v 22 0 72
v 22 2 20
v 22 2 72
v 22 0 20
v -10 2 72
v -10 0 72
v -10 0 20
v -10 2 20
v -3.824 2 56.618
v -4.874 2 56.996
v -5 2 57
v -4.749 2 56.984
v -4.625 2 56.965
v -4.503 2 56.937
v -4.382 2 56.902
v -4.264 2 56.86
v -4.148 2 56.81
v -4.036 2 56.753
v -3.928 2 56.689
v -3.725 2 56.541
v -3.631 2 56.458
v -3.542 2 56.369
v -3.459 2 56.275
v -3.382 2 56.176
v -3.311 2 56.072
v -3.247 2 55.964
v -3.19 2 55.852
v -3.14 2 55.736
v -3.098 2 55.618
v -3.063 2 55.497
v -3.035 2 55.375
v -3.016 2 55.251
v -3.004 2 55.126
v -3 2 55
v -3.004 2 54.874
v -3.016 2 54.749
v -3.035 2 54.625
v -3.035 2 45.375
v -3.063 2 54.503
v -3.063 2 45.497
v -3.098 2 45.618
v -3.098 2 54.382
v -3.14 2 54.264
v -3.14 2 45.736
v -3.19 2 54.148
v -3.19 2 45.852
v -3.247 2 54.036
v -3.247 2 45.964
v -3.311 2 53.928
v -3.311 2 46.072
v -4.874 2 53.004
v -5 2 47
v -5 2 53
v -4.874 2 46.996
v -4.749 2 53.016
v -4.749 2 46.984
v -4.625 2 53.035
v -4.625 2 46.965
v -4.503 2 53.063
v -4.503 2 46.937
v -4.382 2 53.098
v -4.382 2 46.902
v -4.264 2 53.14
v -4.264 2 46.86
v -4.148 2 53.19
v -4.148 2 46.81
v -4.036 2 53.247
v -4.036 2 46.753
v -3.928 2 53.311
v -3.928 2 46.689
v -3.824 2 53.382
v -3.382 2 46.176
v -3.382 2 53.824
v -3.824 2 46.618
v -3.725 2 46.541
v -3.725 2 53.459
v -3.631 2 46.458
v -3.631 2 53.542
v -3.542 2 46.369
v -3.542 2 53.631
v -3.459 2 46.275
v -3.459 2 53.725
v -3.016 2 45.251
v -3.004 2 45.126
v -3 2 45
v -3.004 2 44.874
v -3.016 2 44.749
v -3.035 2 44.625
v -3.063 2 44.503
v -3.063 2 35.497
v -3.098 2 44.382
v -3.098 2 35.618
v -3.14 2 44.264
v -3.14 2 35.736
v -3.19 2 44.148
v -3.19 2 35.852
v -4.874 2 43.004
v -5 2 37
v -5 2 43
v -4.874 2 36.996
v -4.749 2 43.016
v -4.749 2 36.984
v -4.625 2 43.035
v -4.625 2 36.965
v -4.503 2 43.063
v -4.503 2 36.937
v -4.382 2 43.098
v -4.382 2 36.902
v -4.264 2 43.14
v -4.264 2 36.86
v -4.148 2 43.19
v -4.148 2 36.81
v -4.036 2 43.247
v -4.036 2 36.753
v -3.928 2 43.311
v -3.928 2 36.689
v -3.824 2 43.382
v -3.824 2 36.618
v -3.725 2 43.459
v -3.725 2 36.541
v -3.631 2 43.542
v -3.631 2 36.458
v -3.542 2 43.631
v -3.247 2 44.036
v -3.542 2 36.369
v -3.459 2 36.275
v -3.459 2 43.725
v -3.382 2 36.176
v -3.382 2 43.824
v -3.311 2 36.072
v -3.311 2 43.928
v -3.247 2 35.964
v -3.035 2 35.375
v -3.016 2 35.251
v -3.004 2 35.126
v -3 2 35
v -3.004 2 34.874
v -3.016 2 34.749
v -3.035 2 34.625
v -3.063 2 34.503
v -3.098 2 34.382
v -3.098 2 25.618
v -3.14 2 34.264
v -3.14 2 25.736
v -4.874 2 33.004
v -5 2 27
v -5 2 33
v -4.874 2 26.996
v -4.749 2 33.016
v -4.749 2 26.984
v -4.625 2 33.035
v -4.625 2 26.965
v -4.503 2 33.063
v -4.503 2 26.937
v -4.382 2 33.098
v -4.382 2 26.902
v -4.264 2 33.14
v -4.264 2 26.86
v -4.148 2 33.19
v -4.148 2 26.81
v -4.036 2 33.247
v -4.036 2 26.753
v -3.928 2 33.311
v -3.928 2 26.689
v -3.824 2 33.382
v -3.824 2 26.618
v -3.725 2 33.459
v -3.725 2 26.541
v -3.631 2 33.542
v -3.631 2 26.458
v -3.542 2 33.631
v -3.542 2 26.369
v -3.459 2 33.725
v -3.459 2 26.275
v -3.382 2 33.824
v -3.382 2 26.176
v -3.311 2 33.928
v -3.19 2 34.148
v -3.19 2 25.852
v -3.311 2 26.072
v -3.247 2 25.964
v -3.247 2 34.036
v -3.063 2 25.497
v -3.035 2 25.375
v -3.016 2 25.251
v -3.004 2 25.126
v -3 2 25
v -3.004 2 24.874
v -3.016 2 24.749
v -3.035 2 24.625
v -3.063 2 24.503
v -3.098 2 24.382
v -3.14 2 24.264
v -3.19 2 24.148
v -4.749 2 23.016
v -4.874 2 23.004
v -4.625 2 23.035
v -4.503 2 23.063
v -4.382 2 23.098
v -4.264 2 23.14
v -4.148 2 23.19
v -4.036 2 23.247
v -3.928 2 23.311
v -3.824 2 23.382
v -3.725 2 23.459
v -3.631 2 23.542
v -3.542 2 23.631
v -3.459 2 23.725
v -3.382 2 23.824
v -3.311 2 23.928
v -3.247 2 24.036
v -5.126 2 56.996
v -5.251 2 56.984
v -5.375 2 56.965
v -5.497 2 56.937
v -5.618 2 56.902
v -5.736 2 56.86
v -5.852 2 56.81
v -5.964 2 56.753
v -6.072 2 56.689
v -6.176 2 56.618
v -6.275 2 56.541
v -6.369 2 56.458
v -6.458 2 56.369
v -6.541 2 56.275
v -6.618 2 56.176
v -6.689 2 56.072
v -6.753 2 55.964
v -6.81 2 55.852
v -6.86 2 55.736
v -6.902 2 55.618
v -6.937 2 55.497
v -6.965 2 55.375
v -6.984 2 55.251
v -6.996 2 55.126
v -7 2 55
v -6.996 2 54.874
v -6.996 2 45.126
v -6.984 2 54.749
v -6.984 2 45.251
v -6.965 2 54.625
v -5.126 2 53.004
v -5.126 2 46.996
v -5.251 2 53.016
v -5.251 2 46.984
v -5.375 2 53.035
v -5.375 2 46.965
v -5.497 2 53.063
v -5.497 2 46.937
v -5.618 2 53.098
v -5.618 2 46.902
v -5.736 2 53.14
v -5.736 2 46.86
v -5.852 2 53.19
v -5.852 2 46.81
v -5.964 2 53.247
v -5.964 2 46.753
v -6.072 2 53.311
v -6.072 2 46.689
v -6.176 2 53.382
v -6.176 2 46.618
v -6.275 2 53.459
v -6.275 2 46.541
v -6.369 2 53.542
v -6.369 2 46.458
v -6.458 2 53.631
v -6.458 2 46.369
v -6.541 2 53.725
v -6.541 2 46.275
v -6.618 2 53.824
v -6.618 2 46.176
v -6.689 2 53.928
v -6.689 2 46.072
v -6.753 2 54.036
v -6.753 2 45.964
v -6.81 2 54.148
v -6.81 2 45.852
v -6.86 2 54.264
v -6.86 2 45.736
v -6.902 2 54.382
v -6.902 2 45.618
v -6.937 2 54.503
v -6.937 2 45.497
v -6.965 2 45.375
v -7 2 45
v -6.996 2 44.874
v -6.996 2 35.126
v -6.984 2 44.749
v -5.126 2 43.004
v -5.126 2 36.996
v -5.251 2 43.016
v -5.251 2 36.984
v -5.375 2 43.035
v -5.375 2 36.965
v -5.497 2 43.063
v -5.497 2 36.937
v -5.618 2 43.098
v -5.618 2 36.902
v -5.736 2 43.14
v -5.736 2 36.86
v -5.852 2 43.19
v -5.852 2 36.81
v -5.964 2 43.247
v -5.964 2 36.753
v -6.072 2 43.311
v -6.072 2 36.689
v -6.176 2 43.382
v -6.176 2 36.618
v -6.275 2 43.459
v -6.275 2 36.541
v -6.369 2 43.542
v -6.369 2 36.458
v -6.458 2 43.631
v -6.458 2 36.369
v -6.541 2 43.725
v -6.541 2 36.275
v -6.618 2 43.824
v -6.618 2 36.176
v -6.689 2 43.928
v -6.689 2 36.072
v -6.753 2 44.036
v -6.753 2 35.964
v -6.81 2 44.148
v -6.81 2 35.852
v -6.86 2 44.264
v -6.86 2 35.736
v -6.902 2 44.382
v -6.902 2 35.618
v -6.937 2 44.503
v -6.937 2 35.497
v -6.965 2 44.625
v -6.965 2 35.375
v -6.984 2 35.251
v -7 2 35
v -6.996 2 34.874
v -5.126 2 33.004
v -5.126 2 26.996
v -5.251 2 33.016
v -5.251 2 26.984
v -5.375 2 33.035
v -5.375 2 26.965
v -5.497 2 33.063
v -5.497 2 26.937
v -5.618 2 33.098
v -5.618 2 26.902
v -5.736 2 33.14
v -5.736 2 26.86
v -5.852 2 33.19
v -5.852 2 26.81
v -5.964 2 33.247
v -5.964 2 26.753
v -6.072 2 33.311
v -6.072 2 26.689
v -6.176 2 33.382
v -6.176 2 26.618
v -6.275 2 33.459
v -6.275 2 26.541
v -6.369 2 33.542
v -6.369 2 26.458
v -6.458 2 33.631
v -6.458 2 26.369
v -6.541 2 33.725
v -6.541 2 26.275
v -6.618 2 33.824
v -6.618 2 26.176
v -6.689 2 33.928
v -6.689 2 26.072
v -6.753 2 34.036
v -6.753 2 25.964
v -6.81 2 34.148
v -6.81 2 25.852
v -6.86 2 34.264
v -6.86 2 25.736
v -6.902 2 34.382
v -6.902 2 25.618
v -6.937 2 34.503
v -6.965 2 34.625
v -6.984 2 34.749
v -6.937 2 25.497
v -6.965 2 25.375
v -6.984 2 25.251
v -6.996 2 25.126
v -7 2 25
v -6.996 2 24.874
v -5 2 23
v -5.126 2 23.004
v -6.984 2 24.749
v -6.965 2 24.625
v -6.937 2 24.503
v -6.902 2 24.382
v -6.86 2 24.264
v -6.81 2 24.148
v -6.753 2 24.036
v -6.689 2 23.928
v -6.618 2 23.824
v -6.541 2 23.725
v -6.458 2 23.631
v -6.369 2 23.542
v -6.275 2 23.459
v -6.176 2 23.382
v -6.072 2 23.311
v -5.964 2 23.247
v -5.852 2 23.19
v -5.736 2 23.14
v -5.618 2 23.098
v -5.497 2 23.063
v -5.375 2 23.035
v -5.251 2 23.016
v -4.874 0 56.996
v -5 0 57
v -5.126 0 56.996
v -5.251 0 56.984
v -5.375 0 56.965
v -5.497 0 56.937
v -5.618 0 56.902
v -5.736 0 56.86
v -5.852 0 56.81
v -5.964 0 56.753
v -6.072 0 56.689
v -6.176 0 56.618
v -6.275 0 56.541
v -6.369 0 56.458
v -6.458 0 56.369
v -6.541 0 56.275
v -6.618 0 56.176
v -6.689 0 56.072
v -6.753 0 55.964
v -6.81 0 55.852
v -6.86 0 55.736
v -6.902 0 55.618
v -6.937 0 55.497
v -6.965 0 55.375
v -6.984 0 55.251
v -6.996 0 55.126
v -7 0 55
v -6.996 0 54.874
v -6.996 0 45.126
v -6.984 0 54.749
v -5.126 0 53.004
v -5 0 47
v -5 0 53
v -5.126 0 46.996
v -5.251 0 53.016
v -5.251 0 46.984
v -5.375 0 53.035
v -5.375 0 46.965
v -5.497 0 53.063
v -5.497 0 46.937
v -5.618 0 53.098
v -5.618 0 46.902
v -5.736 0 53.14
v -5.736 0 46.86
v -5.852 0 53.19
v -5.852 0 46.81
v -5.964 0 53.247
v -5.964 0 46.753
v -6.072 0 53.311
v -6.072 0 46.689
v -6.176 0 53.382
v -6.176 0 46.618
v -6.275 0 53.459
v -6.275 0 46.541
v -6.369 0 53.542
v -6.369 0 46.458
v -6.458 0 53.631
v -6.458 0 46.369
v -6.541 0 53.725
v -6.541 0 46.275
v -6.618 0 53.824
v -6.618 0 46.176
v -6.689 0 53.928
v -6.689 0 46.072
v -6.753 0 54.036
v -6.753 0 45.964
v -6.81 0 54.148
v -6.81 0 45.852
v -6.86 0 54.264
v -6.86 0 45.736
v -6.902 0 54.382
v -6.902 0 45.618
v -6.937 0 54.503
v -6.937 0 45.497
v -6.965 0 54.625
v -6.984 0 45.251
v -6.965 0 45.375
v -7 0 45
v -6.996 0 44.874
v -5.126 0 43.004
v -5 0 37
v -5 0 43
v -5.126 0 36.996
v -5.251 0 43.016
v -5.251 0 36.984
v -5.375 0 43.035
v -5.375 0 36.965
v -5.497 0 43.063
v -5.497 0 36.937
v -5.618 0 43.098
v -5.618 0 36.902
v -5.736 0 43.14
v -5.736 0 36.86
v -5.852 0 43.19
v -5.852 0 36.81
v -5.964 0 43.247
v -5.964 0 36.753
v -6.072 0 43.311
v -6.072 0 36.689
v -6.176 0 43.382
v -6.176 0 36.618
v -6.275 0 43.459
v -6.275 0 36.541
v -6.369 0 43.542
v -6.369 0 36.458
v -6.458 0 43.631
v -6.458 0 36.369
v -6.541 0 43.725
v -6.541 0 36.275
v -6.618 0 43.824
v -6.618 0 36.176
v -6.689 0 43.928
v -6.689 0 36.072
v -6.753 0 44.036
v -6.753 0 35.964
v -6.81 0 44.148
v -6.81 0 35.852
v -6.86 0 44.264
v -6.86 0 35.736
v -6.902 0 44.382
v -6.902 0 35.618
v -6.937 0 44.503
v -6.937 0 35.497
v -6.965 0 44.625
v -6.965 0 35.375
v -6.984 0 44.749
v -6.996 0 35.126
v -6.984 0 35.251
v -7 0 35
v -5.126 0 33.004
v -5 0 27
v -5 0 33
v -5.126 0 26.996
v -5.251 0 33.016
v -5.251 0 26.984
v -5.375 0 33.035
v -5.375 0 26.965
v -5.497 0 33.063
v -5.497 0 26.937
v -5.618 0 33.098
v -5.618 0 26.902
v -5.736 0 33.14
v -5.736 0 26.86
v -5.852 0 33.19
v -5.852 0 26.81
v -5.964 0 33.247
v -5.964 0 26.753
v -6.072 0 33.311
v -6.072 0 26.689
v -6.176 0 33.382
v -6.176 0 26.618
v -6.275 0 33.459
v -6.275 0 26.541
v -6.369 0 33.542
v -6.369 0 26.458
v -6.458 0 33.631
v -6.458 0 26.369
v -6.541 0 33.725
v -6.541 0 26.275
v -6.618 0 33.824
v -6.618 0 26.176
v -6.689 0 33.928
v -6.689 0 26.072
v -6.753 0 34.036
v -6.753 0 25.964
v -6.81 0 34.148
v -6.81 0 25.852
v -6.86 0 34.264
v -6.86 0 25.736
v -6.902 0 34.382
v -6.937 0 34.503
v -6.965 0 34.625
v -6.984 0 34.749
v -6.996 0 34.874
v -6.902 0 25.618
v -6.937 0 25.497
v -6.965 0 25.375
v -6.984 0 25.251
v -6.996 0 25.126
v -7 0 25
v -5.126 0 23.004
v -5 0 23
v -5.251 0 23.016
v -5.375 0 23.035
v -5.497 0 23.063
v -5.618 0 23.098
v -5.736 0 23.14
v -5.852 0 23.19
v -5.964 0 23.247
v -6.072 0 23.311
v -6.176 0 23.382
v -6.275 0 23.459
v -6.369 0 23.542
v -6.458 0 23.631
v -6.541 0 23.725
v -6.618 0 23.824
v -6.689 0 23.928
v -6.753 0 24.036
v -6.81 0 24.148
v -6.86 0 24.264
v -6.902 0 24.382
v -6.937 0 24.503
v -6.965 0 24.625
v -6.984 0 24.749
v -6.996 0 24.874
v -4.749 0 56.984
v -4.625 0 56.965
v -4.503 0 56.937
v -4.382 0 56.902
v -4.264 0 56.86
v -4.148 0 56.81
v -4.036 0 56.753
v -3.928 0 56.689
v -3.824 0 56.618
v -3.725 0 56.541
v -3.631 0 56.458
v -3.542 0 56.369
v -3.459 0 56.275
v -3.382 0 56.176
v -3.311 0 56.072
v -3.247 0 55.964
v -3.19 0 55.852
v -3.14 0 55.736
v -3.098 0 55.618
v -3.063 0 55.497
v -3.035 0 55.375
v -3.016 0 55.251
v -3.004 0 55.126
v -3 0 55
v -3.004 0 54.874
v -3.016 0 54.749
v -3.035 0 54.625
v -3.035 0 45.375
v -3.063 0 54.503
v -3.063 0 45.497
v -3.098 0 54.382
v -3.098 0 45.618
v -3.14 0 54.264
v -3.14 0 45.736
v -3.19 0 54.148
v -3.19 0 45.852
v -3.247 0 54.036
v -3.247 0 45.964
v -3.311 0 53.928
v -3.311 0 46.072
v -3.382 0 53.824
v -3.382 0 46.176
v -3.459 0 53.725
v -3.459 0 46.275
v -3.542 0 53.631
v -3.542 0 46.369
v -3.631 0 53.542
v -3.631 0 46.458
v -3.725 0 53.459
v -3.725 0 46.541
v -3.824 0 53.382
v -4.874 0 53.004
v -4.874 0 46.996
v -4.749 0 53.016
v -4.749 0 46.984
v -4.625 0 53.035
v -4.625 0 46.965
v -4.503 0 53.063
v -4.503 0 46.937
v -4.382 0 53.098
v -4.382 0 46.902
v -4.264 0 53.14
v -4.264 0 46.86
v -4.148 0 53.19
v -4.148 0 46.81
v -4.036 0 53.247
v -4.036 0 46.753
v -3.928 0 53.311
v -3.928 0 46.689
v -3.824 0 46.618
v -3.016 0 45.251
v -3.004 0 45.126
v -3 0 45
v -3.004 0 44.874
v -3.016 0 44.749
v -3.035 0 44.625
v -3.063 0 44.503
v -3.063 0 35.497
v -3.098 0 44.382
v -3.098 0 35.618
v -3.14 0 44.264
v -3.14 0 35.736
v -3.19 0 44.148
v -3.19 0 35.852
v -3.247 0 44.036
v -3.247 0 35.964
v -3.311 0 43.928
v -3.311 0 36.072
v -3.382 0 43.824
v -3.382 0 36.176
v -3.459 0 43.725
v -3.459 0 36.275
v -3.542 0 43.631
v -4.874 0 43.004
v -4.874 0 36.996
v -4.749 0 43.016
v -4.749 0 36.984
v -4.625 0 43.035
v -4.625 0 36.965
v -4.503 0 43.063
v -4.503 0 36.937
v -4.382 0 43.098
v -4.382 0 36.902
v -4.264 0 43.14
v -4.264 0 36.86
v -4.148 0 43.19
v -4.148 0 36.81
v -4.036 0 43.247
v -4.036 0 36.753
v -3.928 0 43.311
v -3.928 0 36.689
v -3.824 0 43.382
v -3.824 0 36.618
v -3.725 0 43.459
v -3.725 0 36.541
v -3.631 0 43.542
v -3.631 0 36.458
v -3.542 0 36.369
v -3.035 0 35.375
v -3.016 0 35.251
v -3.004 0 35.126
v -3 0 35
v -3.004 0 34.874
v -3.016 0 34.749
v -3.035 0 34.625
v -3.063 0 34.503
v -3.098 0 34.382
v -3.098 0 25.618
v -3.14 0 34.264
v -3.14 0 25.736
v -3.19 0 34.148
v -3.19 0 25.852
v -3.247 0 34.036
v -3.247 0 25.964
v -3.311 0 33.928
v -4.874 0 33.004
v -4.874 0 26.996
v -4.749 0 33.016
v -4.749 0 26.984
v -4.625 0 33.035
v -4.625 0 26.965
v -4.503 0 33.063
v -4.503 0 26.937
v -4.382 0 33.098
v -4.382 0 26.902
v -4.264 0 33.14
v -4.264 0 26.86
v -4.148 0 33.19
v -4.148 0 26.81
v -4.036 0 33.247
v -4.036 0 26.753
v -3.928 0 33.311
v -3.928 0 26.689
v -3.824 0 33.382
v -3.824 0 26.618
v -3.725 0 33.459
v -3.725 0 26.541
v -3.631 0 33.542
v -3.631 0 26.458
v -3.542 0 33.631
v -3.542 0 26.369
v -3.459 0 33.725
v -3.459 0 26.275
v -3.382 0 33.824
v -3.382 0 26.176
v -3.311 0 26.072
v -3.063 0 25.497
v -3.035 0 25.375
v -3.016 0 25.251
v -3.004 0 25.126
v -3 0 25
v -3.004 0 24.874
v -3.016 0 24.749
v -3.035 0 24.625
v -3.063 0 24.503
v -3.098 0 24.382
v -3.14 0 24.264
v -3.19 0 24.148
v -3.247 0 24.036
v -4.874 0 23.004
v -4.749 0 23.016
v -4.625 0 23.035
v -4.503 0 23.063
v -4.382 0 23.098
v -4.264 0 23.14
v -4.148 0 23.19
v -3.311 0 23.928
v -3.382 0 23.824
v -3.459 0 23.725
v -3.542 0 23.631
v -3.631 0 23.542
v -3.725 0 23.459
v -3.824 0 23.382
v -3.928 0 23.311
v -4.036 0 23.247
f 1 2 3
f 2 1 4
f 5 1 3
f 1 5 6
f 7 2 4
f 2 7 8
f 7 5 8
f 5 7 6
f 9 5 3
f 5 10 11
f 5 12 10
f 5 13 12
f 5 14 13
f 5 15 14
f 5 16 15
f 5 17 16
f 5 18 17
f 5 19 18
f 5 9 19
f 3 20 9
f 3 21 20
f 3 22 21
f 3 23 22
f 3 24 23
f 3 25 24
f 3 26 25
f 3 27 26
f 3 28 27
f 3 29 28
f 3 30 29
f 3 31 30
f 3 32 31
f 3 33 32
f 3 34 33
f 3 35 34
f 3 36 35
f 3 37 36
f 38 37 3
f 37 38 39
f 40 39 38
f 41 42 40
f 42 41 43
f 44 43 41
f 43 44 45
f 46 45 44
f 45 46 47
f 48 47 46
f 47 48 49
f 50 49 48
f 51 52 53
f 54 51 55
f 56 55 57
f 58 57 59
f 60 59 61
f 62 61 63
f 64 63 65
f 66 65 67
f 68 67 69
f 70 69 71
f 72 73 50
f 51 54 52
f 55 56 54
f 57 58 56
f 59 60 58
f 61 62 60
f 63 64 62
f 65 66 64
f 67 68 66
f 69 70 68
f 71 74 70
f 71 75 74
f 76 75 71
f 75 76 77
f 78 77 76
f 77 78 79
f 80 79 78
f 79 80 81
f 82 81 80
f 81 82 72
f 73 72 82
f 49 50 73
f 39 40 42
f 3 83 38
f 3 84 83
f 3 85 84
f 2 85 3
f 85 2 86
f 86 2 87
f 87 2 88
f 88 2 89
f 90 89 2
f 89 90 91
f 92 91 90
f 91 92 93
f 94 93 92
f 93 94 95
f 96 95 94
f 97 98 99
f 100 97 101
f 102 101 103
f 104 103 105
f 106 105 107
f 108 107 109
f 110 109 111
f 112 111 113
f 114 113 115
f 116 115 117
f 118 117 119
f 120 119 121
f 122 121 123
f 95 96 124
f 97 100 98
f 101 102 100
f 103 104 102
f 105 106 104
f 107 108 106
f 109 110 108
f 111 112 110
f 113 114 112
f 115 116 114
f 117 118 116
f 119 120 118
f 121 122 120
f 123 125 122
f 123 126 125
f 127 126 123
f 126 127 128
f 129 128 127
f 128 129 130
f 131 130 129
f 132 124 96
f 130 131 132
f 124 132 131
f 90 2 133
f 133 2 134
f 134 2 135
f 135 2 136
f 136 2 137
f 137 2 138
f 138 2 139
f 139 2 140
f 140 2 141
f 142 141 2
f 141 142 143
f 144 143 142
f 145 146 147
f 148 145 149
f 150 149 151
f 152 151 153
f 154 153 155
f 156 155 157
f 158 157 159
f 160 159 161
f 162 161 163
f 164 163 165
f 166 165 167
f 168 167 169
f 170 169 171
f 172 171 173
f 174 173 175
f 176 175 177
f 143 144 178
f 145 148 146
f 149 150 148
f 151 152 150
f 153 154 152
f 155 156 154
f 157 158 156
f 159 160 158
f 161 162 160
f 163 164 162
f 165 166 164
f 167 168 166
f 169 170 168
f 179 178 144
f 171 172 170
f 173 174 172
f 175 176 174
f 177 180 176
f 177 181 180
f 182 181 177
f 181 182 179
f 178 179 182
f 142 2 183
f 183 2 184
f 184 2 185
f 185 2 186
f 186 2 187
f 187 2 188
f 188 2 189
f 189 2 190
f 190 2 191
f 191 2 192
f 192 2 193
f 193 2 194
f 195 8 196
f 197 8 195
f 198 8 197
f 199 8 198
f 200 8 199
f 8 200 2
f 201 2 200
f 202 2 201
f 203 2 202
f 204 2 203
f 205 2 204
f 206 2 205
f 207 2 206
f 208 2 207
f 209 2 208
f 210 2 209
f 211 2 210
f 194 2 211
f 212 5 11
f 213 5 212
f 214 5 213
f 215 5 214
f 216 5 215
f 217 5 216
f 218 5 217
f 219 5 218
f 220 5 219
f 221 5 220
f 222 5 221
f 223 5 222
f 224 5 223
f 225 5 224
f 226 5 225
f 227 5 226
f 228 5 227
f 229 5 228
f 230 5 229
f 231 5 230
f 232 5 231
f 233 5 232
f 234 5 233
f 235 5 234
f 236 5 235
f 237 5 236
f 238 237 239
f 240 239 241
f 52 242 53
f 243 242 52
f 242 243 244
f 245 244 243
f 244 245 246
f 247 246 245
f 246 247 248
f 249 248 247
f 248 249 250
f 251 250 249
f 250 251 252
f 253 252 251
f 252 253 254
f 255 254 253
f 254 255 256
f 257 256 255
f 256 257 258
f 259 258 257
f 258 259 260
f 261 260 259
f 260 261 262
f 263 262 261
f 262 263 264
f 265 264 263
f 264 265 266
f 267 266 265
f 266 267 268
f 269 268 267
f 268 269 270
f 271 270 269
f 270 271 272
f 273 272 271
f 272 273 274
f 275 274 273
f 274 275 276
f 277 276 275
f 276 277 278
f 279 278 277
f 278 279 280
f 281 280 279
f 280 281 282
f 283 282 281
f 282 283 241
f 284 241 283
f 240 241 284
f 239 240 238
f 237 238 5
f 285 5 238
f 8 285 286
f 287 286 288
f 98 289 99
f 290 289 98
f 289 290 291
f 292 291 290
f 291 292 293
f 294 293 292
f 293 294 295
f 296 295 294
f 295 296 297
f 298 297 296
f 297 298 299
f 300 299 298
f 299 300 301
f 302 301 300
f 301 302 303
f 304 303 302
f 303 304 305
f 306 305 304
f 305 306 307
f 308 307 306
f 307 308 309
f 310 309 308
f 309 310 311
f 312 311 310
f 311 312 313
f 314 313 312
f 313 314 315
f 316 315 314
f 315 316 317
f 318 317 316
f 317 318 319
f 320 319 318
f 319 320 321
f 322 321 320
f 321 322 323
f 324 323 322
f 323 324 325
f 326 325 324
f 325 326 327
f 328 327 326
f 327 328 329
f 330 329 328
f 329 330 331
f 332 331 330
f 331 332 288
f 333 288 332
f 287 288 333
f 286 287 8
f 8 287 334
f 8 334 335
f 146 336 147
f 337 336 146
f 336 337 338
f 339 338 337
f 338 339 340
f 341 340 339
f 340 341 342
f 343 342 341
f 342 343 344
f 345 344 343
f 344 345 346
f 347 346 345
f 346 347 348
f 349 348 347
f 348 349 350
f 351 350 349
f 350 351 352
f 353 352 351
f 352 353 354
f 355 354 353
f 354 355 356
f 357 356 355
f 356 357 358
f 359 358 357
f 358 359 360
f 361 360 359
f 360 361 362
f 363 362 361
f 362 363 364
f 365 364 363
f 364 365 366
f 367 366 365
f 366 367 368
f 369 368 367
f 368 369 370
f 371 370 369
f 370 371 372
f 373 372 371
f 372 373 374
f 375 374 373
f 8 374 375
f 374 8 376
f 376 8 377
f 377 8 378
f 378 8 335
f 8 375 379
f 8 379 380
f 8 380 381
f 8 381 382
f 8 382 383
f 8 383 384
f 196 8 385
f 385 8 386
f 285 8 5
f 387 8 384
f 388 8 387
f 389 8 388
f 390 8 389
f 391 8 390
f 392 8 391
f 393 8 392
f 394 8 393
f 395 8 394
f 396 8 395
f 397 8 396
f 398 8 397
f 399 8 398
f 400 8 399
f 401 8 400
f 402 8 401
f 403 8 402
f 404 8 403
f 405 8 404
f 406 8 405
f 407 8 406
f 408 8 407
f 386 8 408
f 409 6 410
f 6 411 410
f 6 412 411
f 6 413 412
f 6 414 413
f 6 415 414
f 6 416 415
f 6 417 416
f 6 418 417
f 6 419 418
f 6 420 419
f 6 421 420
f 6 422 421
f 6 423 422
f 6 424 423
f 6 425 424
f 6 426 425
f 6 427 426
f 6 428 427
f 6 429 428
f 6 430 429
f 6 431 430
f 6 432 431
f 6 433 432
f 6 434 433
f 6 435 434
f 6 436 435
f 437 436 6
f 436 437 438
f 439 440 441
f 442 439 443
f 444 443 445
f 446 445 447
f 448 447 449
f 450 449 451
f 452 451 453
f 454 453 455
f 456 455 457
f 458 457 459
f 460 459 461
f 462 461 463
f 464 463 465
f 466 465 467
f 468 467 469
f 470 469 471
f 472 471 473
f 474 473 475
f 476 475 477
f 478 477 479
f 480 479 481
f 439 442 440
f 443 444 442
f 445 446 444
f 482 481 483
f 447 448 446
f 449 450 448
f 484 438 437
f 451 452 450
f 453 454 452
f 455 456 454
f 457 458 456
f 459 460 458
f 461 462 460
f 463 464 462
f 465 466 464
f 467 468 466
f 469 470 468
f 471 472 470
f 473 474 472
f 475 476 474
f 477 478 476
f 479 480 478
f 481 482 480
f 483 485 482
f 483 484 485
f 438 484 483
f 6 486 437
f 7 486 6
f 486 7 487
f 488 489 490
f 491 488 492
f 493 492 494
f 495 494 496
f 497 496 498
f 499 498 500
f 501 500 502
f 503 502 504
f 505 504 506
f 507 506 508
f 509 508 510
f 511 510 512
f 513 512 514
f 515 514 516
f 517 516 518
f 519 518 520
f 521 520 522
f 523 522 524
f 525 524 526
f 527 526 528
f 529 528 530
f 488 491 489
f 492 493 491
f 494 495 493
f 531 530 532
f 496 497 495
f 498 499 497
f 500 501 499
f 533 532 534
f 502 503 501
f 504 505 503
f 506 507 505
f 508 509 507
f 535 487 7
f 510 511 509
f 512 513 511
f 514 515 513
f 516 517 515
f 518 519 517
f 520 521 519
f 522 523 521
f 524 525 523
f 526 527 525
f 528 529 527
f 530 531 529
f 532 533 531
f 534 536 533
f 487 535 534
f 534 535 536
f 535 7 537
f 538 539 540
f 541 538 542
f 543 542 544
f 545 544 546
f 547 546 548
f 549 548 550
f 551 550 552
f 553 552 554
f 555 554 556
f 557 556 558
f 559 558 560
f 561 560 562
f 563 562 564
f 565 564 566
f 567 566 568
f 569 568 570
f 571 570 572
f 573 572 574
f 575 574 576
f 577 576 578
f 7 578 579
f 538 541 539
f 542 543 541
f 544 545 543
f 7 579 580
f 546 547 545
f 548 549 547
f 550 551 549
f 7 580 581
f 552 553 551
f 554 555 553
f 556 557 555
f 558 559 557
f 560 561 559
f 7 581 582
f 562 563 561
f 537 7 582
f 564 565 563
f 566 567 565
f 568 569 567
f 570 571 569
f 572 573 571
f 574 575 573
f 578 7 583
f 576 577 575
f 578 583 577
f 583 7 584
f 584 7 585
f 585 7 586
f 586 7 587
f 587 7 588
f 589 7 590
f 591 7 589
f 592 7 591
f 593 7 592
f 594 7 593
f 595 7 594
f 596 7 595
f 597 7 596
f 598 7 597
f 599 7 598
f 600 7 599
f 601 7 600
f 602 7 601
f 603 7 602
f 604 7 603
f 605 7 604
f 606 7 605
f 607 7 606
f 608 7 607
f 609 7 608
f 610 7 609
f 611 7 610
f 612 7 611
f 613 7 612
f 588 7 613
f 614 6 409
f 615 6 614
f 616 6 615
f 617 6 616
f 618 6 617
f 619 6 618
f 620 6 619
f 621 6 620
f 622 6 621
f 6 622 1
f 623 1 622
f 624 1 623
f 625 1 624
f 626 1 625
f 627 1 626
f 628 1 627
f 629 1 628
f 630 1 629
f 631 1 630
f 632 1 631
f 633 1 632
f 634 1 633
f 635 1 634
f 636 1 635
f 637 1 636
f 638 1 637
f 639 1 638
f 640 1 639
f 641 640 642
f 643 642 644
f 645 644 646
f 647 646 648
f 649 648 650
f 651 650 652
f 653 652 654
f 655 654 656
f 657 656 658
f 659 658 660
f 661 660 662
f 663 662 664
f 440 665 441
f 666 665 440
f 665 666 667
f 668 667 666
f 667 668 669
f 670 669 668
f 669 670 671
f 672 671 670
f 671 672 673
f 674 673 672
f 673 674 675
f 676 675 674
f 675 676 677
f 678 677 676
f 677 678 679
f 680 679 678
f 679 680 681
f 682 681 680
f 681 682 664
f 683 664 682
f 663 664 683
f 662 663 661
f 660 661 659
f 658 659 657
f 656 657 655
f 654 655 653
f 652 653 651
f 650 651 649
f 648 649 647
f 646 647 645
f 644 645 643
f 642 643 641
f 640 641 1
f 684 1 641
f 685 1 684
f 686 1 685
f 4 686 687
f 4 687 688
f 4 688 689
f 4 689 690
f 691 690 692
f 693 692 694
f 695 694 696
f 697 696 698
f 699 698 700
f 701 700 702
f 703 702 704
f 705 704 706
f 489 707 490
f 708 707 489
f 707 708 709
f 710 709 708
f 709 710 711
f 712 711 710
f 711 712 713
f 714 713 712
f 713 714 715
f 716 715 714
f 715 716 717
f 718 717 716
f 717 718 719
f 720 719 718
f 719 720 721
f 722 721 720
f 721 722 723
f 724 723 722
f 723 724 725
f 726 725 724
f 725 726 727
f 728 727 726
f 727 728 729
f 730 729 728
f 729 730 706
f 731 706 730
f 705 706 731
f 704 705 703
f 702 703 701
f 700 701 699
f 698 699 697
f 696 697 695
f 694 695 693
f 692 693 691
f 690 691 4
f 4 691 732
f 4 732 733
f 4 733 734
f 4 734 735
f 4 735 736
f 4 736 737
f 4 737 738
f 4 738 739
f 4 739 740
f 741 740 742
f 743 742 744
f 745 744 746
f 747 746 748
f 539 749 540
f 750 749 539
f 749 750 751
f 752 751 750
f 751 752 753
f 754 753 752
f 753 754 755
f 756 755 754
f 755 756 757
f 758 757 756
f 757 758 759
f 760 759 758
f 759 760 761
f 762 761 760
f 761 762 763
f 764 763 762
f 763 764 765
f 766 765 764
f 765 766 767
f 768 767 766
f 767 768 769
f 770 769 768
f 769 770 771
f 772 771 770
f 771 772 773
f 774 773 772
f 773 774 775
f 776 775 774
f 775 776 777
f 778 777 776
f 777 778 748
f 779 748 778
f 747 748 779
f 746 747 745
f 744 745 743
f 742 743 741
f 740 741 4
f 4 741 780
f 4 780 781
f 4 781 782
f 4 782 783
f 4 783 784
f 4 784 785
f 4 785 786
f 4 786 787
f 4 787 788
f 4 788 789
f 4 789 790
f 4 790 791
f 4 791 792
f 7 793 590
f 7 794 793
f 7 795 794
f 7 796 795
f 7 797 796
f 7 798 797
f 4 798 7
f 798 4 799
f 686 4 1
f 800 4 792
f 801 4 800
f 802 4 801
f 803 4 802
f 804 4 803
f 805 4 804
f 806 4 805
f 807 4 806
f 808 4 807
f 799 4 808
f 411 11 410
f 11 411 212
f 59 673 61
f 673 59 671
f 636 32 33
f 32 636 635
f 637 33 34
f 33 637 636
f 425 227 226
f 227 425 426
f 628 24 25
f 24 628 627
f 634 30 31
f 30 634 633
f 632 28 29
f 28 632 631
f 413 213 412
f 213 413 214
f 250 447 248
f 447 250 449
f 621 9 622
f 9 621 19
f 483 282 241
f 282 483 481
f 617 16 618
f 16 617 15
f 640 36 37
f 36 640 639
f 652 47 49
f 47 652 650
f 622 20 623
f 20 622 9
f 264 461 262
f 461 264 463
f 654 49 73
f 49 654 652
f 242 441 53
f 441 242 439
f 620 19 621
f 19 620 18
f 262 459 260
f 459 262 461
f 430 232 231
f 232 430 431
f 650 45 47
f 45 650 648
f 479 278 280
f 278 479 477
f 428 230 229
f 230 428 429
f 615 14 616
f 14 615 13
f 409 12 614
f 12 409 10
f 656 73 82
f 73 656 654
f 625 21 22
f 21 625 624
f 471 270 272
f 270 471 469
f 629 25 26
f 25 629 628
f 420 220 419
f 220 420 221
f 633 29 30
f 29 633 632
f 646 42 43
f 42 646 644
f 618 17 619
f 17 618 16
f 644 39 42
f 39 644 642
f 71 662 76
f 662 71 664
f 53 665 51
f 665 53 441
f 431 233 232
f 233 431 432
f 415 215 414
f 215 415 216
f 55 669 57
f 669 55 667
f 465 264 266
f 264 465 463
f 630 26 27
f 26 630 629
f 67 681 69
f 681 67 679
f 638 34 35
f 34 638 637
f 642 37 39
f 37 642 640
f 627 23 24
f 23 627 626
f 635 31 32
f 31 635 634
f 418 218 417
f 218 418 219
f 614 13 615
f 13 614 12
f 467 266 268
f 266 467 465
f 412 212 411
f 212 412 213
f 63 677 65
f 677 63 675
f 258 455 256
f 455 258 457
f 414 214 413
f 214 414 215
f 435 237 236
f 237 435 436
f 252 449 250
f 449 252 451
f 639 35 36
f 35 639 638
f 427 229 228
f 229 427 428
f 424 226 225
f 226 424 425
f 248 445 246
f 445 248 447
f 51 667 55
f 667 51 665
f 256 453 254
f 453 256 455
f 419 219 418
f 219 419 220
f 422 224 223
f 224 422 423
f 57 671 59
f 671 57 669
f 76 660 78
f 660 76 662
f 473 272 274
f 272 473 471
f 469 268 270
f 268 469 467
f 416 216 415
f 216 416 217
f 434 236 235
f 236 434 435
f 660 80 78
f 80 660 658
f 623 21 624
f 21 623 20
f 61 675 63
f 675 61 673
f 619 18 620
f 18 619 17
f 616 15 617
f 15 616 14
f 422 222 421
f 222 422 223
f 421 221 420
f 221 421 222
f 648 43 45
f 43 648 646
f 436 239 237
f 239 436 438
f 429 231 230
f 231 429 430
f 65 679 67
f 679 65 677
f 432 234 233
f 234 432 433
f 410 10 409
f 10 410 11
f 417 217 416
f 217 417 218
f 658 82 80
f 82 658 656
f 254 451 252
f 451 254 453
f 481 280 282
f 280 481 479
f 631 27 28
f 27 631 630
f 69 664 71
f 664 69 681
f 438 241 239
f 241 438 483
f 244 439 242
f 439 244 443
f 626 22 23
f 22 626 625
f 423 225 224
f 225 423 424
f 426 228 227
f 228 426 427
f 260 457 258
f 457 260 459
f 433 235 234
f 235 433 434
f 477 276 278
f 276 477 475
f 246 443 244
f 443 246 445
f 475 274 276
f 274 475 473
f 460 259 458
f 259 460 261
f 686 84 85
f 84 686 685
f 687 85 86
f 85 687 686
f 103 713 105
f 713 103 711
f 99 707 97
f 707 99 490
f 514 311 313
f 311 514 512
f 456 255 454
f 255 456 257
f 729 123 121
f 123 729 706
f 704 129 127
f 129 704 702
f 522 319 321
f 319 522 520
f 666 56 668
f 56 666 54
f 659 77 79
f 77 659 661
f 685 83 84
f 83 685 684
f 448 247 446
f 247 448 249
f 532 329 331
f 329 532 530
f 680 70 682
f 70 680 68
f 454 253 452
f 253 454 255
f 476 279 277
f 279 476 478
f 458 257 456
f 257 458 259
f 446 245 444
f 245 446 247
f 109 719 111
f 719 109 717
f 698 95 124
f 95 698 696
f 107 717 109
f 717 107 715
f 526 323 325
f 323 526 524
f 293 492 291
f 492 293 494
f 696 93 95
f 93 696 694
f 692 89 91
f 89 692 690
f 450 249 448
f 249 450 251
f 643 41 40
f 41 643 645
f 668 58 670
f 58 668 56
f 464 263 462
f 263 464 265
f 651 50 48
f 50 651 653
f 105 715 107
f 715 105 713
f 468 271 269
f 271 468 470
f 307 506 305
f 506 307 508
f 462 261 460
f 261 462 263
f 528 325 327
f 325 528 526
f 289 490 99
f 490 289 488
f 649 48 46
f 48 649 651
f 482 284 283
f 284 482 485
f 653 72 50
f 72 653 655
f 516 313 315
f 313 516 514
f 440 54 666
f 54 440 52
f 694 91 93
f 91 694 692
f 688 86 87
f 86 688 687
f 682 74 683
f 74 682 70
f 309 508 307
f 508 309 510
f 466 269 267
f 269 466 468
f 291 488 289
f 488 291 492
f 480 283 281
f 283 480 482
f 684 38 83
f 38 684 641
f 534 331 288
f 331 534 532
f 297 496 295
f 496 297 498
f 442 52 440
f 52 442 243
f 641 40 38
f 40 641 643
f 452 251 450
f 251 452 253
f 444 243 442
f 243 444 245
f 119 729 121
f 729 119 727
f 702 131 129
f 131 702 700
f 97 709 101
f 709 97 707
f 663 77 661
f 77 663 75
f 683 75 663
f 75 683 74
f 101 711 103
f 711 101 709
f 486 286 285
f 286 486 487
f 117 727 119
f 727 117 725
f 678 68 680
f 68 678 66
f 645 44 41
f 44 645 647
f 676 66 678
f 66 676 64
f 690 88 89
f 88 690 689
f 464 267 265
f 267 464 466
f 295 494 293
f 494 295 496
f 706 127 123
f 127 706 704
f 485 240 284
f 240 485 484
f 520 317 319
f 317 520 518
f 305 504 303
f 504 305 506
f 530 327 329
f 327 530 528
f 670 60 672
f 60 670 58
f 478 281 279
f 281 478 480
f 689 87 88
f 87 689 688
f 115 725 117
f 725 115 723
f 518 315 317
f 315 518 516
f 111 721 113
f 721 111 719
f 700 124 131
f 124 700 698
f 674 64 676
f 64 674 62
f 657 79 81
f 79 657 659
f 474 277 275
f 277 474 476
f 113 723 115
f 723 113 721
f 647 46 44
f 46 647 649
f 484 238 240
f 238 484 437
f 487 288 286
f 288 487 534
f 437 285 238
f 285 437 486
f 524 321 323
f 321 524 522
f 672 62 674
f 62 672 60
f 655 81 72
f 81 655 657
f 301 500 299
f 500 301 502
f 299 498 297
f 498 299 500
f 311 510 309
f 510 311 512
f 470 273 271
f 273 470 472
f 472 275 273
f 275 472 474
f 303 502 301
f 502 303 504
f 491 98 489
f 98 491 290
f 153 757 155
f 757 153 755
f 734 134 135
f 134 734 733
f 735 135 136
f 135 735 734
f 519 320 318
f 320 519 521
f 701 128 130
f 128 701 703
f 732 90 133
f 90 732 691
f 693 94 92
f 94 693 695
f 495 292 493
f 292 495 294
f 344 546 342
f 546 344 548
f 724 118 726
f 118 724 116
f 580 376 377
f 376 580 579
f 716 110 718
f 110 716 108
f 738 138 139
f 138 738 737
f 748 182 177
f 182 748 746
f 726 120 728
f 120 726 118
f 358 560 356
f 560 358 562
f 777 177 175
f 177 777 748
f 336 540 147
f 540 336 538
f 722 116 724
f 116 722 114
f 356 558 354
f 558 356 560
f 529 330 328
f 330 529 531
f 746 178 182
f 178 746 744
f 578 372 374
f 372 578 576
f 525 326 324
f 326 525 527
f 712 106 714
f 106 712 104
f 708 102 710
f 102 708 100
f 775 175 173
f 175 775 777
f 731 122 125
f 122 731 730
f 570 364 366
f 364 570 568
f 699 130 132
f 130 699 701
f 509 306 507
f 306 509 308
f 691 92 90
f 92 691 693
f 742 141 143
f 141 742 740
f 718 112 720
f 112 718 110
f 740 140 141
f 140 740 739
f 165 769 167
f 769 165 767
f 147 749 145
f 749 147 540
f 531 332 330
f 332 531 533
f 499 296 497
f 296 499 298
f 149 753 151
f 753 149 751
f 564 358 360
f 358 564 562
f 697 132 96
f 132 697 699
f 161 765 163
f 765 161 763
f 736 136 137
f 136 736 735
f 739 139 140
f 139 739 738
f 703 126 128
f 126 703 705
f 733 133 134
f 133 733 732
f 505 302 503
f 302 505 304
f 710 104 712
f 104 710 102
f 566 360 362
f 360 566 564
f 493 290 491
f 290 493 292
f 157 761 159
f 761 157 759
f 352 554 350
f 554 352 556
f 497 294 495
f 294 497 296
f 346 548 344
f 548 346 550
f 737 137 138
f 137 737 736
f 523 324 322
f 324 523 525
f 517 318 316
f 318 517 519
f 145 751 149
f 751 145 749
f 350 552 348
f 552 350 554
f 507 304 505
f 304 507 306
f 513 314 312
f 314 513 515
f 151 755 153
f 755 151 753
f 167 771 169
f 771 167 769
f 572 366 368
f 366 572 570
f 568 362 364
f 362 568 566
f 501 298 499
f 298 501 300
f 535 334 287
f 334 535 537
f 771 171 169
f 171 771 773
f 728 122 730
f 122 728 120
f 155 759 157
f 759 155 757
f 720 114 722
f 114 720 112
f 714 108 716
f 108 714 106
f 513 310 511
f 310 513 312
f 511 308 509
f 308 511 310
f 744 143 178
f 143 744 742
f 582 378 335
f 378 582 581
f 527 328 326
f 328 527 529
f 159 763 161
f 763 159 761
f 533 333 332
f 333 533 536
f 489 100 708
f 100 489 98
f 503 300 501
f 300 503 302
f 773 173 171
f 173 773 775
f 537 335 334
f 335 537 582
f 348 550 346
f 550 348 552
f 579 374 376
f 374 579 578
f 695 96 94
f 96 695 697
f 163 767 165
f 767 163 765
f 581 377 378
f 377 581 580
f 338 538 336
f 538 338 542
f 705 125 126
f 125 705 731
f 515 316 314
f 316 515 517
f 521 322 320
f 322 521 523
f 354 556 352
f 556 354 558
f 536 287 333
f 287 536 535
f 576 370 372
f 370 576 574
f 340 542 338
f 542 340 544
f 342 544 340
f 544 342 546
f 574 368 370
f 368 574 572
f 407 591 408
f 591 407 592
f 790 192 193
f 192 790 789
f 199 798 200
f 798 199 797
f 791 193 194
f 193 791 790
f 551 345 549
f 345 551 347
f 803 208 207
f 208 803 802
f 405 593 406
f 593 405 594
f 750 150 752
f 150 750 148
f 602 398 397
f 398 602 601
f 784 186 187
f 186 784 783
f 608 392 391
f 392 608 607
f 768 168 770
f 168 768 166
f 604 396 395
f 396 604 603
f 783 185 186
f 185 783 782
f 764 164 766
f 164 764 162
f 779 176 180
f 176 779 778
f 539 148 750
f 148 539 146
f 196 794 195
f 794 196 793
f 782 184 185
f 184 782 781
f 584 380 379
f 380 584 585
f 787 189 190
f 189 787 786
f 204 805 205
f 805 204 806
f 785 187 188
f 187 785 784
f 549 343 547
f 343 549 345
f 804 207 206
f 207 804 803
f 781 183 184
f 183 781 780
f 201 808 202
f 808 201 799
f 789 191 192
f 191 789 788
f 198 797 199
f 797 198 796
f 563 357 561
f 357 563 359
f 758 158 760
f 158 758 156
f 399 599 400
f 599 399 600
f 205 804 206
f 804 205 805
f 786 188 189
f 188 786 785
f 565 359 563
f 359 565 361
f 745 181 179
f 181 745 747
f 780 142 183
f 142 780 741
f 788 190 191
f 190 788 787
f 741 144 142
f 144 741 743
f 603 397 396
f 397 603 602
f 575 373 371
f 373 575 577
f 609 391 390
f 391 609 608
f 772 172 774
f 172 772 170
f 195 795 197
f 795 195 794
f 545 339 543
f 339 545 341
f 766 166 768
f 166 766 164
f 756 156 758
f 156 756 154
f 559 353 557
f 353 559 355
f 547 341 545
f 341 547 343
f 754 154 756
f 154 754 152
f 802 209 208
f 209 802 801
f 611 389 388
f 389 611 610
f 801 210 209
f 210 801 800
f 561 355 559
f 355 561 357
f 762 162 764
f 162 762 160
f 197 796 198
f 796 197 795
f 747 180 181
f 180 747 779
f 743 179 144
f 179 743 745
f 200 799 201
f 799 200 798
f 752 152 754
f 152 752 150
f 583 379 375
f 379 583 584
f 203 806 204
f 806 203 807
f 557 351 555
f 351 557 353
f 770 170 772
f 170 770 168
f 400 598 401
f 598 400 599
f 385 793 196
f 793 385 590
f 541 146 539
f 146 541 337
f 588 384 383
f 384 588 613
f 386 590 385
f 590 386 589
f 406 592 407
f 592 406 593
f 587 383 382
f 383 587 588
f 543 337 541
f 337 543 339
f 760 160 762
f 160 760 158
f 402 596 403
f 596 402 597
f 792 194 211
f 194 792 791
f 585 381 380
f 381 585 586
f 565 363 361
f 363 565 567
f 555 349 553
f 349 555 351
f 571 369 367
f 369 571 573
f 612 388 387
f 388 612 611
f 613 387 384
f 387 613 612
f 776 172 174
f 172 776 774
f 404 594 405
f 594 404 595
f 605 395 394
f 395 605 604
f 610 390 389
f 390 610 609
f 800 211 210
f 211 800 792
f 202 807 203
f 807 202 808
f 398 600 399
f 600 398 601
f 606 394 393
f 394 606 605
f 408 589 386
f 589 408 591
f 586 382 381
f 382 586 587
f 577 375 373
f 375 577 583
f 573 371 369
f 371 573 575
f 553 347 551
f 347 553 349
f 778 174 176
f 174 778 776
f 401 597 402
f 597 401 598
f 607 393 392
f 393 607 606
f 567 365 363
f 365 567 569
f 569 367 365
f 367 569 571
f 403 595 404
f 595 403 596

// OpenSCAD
difference() {
union() {

    translate([-10, 0,20])
        cube([32, 2, 52]);

    
}
 translate([-5,100,55]){
      rotate([90,0,0]){
           cylinder(h=1000, r=2, $fn=100, center=false);
      }
  }
 translate([-5,100,45]){
      rotate([90,0,0]){
           cylinder(h=1000, r=2, $fn=100, center=false);
      }
  }
 translate([-5,100,35]){
      rotate([90,0,0]){
           cylinder(h=1000, r=2, $fn=100, center=false);
      }
  }
 translate([-5,100,25]){
      rotate([90,0,0]){
           cylinder(h=1000, r=2, $fn=100, center=false);
      }
  }


}
